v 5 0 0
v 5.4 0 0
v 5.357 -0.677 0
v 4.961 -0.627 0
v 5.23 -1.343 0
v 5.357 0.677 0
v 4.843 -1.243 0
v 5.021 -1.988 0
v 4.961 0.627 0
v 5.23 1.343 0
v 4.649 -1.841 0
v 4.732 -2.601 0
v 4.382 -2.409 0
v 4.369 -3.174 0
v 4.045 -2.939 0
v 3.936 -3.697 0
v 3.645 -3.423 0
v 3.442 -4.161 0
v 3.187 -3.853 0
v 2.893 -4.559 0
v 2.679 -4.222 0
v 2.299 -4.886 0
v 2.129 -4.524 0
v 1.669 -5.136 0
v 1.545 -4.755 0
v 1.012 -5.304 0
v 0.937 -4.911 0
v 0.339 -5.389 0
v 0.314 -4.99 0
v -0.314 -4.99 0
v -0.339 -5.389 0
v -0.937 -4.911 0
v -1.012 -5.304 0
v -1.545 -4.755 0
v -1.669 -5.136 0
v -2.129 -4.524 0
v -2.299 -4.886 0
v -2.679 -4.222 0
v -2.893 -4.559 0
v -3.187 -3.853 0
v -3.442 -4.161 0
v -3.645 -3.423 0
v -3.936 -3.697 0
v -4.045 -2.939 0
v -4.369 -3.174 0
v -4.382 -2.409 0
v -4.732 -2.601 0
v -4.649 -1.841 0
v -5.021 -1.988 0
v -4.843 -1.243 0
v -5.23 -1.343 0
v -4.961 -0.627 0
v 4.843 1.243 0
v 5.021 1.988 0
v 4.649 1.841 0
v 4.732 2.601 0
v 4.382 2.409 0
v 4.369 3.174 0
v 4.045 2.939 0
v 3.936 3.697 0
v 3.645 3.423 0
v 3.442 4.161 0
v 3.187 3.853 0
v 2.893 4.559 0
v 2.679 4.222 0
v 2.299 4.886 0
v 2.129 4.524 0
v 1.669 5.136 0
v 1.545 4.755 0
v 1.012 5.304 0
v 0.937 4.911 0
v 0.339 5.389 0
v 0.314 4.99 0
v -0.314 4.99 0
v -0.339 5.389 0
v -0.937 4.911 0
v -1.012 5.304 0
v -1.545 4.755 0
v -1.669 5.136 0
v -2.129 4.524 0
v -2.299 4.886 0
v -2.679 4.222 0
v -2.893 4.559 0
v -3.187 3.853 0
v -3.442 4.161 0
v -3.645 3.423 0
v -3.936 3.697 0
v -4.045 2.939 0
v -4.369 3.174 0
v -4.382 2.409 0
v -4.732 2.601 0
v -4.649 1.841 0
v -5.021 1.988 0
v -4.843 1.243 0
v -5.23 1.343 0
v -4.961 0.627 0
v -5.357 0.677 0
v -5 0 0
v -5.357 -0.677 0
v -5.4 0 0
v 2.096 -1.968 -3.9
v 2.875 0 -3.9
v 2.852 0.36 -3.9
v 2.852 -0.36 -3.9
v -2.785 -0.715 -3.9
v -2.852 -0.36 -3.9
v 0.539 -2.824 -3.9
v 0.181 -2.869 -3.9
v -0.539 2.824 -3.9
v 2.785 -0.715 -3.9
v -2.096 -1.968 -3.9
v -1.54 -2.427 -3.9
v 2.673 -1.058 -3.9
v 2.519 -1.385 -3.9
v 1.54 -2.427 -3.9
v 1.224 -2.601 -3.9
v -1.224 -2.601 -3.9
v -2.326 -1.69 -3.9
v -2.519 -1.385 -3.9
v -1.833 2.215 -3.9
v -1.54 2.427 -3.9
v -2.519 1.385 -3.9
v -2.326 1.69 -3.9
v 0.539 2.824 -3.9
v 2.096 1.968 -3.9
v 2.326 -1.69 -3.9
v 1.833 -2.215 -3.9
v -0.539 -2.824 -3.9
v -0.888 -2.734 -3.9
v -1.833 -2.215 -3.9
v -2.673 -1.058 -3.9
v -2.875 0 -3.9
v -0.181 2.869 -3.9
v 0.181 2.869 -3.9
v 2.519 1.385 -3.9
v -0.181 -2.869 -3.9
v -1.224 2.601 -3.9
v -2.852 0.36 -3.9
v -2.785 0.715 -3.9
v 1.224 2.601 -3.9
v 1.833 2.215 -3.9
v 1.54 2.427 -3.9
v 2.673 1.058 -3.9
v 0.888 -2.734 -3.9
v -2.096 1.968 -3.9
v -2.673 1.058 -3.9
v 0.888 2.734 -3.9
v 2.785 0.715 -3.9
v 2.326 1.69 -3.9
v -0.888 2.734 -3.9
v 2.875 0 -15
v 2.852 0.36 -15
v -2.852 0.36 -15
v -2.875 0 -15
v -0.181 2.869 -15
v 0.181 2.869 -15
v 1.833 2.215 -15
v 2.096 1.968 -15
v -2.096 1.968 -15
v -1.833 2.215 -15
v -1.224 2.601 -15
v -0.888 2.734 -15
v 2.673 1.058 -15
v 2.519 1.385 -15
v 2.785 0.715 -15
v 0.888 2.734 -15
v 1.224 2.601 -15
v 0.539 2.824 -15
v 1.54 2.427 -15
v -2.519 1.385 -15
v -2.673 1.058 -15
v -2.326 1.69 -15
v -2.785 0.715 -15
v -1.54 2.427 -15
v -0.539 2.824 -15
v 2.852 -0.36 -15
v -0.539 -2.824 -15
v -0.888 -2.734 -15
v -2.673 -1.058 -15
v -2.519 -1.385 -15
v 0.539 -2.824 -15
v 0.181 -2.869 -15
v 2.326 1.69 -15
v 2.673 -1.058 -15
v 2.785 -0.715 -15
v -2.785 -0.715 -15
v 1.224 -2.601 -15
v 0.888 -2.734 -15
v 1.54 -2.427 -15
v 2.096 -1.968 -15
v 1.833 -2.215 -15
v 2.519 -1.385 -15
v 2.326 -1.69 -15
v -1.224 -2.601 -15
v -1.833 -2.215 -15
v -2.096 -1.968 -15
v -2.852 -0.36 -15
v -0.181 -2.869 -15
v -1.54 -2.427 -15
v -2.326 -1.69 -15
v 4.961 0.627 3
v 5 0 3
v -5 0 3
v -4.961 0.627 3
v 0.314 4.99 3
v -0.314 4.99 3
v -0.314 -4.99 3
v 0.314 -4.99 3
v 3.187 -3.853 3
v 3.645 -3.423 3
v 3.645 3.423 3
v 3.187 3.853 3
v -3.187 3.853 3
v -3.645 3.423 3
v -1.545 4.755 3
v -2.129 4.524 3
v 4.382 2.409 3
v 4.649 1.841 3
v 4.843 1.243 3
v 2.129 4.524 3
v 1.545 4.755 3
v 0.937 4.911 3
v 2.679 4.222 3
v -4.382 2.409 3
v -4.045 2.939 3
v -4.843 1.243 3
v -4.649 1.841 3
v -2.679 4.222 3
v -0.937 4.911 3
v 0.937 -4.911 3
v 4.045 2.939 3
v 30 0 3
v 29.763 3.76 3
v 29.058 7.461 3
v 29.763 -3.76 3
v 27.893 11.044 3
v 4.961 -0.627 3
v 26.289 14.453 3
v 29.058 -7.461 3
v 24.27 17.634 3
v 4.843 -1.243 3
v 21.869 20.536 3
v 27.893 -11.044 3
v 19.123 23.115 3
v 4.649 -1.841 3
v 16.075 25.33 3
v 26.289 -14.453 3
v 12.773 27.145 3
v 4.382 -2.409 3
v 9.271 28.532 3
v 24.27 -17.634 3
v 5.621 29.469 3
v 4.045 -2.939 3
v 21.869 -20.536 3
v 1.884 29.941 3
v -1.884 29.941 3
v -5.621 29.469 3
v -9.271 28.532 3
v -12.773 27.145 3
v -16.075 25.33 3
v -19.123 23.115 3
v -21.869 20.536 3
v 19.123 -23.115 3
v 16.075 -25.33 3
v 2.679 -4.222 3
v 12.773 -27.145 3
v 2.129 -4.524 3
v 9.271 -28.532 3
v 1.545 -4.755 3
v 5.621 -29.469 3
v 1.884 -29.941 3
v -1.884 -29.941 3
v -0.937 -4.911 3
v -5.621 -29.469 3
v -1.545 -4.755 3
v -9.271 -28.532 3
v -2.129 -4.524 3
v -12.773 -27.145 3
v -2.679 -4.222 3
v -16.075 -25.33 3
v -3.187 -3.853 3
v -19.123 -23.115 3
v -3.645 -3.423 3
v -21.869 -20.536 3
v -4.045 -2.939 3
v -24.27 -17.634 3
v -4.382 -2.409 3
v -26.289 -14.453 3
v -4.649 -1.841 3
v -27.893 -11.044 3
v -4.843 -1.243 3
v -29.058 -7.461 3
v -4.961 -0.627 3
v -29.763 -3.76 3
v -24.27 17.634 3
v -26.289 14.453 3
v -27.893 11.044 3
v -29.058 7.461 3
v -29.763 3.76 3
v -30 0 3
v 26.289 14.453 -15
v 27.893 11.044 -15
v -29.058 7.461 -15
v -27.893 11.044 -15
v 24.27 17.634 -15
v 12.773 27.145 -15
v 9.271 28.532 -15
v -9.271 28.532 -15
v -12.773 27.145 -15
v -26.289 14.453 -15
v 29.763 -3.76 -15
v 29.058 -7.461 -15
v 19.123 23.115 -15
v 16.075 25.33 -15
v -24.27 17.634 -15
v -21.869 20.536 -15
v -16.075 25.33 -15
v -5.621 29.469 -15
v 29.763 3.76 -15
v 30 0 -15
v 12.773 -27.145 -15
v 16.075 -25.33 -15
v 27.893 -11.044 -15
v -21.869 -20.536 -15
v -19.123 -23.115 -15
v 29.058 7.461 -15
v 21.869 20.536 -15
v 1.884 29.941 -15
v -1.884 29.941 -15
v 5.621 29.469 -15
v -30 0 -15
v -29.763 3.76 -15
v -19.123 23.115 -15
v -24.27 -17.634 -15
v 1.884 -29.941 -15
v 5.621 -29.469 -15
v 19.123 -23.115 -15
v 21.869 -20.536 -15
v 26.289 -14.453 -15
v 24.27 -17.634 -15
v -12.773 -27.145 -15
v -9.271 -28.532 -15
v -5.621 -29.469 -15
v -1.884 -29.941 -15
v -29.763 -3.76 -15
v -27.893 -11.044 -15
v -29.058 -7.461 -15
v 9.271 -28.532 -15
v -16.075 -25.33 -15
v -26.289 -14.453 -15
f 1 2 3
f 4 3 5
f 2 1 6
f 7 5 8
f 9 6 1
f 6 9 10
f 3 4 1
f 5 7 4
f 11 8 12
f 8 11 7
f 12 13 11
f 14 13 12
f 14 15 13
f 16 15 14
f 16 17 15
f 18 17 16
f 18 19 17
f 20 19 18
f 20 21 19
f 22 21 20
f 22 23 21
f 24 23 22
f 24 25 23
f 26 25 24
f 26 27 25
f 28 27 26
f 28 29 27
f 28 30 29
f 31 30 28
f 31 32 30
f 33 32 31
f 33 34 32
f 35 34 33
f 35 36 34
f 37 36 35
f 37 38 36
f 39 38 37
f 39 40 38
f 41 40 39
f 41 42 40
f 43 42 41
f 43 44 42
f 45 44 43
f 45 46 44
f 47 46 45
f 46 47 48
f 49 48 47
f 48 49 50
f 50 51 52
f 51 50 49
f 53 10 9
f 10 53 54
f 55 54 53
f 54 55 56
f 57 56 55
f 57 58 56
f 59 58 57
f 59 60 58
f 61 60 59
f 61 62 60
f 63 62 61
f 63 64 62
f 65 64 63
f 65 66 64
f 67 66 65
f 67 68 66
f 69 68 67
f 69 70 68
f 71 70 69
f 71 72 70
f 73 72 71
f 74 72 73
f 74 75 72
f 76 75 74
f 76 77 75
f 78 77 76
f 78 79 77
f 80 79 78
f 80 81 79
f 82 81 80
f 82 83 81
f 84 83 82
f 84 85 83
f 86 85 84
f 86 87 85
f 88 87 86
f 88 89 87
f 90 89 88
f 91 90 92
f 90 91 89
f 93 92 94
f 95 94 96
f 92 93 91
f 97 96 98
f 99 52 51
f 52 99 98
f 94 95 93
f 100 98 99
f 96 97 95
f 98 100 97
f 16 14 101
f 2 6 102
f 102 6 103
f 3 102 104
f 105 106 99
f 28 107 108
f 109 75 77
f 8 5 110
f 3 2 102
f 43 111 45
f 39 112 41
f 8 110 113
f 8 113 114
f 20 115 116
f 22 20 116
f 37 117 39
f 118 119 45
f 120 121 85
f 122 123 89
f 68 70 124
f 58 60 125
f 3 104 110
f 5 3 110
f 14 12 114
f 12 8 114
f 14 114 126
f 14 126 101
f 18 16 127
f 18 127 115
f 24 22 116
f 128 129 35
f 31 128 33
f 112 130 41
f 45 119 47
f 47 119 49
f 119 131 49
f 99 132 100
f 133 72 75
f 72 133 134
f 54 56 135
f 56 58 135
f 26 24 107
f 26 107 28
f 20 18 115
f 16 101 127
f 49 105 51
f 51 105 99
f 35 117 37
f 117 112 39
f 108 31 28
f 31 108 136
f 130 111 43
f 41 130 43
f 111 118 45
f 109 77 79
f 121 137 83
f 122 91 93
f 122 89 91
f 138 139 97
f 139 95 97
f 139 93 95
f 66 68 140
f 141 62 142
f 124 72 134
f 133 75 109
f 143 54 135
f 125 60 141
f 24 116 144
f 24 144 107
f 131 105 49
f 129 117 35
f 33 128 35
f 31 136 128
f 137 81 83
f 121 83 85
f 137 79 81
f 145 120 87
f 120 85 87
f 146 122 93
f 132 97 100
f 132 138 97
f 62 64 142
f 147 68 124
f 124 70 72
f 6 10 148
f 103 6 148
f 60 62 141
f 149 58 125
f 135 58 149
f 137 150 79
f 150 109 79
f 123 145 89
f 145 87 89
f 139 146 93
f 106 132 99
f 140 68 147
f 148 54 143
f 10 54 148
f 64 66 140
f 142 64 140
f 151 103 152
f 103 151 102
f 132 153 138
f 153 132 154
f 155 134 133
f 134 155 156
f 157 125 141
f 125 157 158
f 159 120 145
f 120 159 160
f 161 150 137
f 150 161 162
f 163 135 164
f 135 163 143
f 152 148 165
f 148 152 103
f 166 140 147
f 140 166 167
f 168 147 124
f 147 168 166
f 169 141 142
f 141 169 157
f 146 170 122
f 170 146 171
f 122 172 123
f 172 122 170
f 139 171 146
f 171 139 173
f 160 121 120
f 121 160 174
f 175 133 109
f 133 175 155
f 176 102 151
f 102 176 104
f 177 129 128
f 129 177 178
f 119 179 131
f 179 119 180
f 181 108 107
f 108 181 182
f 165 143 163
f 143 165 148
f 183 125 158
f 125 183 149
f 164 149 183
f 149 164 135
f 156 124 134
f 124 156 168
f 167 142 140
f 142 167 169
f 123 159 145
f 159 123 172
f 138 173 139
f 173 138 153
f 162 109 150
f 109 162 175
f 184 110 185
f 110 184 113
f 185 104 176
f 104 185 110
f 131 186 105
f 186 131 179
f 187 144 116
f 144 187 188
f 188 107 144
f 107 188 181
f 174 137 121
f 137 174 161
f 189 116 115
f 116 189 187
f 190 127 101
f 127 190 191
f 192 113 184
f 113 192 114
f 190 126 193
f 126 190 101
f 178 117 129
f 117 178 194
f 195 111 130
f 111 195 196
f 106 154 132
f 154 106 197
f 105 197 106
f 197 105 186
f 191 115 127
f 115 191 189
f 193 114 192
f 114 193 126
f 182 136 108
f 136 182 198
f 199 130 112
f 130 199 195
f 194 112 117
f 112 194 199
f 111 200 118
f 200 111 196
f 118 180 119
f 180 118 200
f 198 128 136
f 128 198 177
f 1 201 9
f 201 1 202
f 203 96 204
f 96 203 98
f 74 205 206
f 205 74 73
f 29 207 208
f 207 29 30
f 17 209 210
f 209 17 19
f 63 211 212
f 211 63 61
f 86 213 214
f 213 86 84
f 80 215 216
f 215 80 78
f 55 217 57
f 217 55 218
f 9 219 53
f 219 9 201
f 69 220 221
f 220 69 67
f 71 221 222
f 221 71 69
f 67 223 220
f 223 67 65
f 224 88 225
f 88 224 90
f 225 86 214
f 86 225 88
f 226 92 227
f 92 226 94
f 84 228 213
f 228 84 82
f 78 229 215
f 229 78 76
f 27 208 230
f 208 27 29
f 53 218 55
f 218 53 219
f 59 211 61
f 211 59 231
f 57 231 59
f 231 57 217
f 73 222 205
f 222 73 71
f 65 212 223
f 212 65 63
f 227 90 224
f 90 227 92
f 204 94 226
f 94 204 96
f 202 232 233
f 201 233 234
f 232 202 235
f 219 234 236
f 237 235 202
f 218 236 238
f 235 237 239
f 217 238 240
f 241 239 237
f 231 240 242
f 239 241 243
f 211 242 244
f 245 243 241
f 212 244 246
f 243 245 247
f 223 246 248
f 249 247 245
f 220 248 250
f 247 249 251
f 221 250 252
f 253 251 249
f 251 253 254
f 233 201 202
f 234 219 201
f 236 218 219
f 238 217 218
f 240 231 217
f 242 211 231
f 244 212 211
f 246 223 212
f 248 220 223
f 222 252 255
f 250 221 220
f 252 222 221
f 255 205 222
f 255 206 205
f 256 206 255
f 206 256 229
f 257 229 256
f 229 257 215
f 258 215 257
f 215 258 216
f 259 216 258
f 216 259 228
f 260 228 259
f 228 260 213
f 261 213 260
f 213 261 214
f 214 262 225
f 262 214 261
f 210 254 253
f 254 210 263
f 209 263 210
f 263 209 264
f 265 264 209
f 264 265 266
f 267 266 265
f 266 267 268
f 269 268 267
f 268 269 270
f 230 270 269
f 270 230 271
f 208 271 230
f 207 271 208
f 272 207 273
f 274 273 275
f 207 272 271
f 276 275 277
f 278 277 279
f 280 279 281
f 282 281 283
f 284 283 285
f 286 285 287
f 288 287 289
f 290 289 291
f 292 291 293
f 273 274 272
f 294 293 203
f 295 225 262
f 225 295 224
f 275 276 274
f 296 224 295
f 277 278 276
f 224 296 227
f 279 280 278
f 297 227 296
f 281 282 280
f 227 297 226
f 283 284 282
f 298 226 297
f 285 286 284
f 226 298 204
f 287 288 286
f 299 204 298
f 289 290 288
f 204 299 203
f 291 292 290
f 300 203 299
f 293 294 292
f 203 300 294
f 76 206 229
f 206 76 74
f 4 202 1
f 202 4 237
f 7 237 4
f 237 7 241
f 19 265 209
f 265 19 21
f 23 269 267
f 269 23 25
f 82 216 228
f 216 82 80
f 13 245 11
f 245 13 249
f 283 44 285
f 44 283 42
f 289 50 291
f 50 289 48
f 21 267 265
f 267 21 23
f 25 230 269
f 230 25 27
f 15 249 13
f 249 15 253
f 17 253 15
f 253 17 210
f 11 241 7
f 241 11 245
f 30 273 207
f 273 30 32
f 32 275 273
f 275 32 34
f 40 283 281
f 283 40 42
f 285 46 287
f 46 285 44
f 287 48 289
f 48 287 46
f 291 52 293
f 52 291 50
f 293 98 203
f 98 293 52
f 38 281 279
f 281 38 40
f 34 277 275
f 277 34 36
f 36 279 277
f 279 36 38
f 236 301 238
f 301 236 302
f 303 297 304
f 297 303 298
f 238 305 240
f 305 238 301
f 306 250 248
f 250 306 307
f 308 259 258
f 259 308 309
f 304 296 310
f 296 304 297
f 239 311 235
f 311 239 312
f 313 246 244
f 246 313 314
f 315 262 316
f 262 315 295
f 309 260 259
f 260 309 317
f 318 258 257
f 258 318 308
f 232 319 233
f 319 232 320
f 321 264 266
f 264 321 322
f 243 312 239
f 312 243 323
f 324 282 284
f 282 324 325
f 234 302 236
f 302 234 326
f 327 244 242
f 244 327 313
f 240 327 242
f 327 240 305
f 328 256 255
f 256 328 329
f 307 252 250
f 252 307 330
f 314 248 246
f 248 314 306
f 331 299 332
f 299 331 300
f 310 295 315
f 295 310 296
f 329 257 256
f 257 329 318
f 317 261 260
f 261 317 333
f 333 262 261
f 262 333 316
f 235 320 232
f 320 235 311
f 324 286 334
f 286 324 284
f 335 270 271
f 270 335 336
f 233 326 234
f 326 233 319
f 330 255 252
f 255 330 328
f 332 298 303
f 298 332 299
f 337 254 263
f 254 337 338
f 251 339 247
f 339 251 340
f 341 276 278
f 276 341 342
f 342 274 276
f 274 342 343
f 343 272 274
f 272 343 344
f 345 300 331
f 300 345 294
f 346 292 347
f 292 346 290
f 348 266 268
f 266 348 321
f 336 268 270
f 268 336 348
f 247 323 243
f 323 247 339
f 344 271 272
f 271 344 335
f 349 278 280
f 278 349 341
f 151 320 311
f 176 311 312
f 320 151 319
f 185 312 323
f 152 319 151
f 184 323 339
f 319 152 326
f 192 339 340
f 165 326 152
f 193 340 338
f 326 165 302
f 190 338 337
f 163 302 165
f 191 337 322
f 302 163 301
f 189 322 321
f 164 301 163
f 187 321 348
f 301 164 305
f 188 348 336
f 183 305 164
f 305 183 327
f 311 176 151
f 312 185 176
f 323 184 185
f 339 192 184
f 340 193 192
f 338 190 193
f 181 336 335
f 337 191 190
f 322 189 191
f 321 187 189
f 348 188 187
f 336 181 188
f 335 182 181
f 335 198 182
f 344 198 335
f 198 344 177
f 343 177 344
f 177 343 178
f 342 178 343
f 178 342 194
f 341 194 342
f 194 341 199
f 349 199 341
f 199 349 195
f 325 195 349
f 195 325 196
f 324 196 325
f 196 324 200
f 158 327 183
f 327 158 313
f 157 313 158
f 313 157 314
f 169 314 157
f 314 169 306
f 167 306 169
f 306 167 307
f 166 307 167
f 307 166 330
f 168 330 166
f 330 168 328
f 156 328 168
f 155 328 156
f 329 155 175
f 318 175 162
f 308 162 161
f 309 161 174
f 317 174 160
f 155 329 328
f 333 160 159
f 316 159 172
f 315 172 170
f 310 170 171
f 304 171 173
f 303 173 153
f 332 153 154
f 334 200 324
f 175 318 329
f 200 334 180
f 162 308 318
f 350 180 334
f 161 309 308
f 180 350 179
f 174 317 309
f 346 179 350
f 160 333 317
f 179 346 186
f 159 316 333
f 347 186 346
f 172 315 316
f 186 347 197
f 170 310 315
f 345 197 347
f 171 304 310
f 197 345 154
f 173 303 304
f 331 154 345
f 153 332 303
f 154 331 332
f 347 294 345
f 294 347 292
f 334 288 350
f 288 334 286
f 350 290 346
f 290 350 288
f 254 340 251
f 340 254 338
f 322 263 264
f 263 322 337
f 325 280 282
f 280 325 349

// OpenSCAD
$fn = 50;


difference() {
	union() {
		translate(v = [0, 0, -15.0000000000]) {
			cylinder(h = 18, r = 30.0000000000);
		}
	}
	union() {
		translate(v = [0, 0, 0]) {
			rotate(a = [0, 0, 0]) {
				difference() {
					union() {
						translate(v = [0, 0, -18.0000000000]) {
							cylinder(h = 18, r = 2.6000000000);
						}
						translate(v = [0, 0, -3.9000000000]) {
							cylinder(h = 3.9000000000, r1 = 2.8750000000, r2 = 5.4000000000);
						}
						translate(v = [0, 0, -18.0000000000]) {
							cylinder(h = 18, r = 2.8750000000);
						}
						translate(v = [0, 0, -18.0000000000]) {
							cylinder(h = 18, r = 2.6000000000);
						}
					}
					union();
				}
			}
		}
		#cylinder(h = 3, r = 5.0000000000);
	}
}
